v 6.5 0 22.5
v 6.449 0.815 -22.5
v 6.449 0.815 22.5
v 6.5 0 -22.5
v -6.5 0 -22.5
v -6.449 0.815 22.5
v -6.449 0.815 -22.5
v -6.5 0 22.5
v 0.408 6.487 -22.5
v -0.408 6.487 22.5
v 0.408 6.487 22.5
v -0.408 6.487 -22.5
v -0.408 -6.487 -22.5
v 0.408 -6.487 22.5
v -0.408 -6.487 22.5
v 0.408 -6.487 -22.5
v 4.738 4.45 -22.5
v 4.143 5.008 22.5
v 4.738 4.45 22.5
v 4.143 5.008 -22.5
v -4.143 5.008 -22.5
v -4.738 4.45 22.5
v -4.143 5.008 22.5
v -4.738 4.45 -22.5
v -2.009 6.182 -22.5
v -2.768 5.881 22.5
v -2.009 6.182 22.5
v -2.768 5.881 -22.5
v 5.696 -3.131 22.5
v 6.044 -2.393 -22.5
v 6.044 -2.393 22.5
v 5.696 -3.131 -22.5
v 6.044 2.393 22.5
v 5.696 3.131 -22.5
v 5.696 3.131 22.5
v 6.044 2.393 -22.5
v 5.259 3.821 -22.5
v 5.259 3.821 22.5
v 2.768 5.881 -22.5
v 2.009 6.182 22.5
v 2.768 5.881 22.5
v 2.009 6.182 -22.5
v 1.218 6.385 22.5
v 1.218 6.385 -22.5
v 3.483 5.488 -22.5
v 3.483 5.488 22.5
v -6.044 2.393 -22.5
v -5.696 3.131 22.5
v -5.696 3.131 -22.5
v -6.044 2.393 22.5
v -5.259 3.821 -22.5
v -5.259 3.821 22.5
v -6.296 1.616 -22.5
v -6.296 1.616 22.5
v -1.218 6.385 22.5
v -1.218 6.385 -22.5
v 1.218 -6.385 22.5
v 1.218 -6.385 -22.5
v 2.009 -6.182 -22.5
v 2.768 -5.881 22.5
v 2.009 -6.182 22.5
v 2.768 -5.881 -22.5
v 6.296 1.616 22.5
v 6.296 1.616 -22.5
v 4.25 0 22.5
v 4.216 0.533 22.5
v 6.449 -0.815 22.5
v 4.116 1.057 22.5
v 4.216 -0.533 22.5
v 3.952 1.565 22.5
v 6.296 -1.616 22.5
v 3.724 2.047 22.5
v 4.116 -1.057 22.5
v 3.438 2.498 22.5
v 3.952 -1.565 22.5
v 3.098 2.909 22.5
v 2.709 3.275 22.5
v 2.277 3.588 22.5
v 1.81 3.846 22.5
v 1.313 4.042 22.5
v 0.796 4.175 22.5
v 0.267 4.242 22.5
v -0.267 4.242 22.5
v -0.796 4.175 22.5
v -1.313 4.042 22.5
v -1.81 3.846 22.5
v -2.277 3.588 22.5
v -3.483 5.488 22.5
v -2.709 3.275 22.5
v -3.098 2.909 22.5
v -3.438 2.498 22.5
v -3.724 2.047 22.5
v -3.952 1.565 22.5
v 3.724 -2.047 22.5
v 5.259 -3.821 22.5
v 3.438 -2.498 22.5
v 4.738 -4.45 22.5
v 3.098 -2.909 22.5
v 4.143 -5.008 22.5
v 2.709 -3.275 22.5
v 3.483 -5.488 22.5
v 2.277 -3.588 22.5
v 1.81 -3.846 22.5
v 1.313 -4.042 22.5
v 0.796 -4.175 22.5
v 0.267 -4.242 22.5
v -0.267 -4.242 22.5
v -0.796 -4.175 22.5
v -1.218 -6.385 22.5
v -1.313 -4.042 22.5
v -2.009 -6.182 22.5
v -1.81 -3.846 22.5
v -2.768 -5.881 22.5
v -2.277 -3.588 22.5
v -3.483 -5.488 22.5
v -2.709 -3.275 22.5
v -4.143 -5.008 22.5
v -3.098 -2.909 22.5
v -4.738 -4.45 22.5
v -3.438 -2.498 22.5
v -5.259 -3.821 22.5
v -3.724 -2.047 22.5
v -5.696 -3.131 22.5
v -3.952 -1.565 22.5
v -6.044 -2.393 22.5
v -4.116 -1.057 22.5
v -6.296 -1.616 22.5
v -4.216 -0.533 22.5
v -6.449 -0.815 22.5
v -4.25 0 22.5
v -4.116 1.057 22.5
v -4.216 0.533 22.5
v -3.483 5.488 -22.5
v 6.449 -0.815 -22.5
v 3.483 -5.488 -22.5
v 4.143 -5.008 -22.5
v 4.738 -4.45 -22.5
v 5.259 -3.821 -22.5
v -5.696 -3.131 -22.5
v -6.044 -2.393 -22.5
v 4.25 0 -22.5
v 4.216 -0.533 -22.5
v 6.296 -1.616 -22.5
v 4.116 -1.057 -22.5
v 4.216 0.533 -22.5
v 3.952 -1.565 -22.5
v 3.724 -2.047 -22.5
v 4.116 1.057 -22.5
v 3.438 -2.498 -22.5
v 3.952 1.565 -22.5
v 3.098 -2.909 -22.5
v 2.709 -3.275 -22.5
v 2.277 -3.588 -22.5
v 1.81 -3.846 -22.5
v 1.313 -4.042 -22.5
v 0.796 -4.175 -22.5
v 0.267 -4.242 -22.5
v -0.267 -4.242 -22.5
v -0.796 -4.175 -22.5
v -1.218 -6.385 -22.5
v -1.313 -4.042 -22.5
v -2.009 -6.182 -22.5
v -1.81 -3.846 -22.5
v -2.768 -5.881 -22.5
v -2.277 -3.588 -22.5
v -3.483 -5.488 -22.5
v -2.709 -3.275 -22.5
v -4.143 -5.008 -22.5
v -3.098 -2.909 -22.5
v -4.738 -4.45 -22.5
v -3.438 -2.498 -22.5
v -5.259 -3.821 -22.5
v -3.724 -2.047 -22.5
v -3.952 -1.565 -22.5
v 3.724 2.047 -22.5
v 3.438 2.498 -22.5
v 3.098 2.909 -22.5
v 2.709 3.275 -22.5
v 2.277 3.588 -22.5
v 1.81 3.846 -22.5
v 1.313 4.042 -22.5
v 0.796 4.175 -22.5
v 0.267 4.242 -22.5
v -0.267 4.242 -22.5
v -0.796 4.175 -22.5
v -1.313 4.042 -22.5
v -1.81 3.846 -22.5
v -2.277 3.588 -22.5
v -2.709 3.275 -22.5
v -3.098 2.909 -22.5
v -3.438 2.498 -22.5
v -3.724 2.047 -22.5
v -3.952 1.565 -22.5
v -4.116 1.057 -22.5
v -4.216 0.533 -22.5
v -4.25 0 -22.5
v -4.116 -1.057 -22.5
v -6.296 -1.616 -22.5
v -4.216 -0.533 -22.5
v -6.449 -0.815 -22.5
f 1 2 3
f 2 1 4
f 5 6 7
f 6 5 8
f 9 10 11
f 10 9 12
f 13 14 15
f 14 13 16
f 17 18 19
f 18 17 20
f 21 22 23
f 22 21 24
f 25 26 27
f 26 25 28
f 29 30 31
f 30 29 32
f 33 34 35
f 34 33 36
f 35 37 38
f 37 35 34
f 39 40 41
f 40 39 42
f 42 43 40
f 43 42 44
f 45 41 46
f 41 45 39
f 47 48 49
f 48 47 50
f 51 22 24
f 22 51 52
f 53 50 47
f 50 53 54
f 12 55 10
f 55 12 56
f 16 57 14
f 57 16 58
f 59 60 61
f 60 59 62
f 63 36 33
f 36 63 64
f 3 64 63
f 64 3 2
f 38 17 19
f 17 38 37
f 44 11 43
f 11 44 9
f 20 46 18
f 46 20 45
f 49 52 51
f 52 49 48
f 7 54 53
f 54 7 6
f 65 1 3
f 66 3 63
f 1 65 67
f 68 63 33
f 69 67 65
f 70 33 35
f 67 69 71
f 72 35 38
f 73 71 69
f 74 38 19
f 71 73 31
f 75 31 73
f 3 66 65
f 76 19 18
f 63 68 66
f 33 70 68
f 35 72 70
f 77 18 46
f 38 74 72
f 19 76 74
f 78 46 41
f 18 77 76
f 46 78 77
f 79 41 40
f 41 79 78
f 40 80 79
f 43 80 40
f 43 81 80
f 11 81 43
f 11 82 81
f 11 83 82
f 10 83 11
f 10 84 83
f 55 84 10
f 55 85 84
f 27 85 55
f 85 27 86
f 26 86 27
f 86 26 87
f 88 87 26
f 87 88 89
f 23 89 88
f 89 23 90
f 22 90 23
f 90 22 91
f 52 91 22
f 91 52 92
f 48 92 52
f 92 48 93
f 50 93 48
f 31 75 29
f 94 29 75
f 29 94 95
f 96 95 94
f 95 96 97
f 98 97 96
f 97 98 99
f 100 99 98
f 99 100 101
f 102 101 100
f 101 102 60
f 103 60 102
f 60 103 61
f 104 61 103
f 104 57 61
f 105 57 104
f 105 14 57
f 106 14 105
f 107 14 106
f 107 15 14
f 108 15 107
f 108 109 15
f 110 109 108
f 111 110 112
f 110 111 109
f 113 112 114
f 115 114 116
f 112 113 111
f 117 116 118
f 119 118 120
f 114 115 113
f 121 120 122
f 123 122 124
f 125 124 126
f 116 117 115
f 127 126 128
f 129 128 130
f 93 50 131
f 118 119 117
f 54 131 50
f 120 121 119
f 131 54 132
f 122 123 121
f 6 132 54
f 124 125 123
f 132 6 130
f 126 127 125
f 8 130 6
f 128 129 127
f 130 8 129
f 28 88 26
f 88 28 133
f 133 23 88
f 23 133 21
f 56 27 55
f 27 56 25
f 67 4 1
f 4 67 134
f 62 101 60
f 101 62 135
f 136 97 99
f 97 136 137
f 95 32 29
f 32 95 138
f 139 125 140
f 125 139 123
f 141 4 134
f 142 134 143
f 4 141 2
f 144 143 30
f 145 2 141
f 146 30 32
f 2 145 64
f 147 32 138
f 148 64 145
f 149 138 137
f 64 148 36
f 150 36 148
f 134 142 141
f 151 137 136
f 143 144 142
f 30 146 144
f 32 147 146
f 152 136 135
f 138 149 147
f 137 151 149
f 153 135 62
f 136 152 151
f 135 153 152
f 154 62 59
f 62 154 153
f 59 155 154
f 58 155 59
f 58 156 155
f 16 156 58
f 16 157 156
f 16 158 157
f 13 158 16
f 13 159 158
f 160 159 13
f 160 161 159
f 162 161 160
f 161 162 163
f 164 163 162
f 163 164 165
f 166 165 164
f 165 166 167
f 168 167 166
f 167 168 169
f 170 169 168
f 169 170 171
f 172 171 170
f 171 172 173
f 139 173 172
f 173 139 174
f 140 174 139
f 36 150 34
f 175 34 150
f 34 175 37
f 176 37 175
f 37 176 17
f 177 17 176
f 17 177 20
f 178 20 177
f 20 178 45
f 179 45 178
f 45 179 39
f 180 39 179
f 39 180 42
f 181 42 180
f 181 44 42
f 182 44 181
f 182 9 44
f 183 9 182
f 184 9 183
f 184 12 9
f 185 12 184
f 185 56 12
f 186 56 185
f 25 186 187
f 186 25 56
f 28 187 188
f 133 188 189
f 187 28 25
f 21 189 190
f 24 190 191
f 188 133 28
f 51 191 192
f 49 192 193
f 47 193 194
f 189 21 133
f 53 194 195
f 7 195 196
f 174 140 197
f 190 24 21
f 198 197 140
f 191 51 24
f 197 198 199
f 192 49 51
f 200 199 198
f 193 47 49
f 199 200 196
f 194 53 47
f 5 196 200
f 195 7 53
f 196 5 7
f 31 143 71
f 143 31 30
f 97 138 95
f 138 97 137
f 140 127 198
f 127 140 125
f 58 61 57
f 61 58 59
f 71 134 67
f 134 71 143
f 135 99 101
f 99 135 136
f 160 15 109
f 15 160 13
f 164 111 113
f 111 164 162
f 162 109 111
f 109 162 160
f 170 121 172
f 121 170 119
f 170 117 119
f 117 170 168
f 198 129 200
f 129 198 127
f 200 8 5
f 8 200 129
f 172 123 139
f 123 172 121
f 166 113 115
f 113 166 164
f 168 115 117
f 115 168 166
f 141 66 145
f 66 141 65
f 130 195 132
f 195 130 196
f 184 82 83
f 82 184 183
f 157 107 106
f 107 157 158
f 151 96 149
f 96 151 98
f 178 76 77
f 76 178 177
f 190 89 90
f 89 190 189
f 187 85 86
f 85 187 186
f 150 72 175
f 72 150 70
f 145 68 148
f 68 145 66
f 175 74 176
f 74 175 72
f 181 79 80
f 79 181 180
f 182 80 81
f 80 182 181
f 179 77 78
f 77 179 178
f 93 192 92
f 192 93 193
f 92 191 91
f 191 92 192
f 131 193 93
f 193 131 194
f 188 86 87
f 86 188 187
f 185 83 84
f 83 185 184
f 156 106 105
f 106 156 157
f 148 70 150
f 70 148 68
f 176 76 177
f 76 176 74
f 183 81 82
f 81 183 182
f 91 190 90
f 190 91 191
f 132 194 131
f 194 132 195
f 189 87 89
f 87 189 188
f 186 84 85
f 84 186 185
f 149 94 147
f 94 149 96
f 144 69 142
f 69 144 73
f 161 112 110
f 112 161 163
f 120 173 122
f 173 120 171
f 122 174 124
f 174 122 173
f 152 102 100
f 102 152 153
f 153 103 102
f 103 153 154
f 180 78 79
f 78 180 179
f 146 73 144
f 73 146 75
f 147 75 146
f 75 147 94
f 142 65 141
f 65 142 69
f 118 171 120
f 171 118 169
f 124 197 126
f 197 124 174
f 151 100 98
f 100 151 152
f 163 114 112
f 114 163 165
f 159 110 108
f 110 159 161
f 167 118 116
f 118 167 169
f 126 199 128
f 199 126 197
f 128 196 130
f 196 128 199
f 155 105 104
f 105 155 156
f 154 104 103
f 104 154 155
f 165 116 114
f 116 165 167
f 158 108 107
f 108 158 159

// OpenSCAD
$fn = 50;


difference() {
	union() {
		translate(v = [0, 0, -22.5000000000]) {
			cylinder(h = 45, r = 6.5000000000);
		}
	}
	union() {
		translate(v = [0, 0, -100.0000000000]) {
			cylinder(h = 200, r = 4.2500000000);
		}
	}
}
